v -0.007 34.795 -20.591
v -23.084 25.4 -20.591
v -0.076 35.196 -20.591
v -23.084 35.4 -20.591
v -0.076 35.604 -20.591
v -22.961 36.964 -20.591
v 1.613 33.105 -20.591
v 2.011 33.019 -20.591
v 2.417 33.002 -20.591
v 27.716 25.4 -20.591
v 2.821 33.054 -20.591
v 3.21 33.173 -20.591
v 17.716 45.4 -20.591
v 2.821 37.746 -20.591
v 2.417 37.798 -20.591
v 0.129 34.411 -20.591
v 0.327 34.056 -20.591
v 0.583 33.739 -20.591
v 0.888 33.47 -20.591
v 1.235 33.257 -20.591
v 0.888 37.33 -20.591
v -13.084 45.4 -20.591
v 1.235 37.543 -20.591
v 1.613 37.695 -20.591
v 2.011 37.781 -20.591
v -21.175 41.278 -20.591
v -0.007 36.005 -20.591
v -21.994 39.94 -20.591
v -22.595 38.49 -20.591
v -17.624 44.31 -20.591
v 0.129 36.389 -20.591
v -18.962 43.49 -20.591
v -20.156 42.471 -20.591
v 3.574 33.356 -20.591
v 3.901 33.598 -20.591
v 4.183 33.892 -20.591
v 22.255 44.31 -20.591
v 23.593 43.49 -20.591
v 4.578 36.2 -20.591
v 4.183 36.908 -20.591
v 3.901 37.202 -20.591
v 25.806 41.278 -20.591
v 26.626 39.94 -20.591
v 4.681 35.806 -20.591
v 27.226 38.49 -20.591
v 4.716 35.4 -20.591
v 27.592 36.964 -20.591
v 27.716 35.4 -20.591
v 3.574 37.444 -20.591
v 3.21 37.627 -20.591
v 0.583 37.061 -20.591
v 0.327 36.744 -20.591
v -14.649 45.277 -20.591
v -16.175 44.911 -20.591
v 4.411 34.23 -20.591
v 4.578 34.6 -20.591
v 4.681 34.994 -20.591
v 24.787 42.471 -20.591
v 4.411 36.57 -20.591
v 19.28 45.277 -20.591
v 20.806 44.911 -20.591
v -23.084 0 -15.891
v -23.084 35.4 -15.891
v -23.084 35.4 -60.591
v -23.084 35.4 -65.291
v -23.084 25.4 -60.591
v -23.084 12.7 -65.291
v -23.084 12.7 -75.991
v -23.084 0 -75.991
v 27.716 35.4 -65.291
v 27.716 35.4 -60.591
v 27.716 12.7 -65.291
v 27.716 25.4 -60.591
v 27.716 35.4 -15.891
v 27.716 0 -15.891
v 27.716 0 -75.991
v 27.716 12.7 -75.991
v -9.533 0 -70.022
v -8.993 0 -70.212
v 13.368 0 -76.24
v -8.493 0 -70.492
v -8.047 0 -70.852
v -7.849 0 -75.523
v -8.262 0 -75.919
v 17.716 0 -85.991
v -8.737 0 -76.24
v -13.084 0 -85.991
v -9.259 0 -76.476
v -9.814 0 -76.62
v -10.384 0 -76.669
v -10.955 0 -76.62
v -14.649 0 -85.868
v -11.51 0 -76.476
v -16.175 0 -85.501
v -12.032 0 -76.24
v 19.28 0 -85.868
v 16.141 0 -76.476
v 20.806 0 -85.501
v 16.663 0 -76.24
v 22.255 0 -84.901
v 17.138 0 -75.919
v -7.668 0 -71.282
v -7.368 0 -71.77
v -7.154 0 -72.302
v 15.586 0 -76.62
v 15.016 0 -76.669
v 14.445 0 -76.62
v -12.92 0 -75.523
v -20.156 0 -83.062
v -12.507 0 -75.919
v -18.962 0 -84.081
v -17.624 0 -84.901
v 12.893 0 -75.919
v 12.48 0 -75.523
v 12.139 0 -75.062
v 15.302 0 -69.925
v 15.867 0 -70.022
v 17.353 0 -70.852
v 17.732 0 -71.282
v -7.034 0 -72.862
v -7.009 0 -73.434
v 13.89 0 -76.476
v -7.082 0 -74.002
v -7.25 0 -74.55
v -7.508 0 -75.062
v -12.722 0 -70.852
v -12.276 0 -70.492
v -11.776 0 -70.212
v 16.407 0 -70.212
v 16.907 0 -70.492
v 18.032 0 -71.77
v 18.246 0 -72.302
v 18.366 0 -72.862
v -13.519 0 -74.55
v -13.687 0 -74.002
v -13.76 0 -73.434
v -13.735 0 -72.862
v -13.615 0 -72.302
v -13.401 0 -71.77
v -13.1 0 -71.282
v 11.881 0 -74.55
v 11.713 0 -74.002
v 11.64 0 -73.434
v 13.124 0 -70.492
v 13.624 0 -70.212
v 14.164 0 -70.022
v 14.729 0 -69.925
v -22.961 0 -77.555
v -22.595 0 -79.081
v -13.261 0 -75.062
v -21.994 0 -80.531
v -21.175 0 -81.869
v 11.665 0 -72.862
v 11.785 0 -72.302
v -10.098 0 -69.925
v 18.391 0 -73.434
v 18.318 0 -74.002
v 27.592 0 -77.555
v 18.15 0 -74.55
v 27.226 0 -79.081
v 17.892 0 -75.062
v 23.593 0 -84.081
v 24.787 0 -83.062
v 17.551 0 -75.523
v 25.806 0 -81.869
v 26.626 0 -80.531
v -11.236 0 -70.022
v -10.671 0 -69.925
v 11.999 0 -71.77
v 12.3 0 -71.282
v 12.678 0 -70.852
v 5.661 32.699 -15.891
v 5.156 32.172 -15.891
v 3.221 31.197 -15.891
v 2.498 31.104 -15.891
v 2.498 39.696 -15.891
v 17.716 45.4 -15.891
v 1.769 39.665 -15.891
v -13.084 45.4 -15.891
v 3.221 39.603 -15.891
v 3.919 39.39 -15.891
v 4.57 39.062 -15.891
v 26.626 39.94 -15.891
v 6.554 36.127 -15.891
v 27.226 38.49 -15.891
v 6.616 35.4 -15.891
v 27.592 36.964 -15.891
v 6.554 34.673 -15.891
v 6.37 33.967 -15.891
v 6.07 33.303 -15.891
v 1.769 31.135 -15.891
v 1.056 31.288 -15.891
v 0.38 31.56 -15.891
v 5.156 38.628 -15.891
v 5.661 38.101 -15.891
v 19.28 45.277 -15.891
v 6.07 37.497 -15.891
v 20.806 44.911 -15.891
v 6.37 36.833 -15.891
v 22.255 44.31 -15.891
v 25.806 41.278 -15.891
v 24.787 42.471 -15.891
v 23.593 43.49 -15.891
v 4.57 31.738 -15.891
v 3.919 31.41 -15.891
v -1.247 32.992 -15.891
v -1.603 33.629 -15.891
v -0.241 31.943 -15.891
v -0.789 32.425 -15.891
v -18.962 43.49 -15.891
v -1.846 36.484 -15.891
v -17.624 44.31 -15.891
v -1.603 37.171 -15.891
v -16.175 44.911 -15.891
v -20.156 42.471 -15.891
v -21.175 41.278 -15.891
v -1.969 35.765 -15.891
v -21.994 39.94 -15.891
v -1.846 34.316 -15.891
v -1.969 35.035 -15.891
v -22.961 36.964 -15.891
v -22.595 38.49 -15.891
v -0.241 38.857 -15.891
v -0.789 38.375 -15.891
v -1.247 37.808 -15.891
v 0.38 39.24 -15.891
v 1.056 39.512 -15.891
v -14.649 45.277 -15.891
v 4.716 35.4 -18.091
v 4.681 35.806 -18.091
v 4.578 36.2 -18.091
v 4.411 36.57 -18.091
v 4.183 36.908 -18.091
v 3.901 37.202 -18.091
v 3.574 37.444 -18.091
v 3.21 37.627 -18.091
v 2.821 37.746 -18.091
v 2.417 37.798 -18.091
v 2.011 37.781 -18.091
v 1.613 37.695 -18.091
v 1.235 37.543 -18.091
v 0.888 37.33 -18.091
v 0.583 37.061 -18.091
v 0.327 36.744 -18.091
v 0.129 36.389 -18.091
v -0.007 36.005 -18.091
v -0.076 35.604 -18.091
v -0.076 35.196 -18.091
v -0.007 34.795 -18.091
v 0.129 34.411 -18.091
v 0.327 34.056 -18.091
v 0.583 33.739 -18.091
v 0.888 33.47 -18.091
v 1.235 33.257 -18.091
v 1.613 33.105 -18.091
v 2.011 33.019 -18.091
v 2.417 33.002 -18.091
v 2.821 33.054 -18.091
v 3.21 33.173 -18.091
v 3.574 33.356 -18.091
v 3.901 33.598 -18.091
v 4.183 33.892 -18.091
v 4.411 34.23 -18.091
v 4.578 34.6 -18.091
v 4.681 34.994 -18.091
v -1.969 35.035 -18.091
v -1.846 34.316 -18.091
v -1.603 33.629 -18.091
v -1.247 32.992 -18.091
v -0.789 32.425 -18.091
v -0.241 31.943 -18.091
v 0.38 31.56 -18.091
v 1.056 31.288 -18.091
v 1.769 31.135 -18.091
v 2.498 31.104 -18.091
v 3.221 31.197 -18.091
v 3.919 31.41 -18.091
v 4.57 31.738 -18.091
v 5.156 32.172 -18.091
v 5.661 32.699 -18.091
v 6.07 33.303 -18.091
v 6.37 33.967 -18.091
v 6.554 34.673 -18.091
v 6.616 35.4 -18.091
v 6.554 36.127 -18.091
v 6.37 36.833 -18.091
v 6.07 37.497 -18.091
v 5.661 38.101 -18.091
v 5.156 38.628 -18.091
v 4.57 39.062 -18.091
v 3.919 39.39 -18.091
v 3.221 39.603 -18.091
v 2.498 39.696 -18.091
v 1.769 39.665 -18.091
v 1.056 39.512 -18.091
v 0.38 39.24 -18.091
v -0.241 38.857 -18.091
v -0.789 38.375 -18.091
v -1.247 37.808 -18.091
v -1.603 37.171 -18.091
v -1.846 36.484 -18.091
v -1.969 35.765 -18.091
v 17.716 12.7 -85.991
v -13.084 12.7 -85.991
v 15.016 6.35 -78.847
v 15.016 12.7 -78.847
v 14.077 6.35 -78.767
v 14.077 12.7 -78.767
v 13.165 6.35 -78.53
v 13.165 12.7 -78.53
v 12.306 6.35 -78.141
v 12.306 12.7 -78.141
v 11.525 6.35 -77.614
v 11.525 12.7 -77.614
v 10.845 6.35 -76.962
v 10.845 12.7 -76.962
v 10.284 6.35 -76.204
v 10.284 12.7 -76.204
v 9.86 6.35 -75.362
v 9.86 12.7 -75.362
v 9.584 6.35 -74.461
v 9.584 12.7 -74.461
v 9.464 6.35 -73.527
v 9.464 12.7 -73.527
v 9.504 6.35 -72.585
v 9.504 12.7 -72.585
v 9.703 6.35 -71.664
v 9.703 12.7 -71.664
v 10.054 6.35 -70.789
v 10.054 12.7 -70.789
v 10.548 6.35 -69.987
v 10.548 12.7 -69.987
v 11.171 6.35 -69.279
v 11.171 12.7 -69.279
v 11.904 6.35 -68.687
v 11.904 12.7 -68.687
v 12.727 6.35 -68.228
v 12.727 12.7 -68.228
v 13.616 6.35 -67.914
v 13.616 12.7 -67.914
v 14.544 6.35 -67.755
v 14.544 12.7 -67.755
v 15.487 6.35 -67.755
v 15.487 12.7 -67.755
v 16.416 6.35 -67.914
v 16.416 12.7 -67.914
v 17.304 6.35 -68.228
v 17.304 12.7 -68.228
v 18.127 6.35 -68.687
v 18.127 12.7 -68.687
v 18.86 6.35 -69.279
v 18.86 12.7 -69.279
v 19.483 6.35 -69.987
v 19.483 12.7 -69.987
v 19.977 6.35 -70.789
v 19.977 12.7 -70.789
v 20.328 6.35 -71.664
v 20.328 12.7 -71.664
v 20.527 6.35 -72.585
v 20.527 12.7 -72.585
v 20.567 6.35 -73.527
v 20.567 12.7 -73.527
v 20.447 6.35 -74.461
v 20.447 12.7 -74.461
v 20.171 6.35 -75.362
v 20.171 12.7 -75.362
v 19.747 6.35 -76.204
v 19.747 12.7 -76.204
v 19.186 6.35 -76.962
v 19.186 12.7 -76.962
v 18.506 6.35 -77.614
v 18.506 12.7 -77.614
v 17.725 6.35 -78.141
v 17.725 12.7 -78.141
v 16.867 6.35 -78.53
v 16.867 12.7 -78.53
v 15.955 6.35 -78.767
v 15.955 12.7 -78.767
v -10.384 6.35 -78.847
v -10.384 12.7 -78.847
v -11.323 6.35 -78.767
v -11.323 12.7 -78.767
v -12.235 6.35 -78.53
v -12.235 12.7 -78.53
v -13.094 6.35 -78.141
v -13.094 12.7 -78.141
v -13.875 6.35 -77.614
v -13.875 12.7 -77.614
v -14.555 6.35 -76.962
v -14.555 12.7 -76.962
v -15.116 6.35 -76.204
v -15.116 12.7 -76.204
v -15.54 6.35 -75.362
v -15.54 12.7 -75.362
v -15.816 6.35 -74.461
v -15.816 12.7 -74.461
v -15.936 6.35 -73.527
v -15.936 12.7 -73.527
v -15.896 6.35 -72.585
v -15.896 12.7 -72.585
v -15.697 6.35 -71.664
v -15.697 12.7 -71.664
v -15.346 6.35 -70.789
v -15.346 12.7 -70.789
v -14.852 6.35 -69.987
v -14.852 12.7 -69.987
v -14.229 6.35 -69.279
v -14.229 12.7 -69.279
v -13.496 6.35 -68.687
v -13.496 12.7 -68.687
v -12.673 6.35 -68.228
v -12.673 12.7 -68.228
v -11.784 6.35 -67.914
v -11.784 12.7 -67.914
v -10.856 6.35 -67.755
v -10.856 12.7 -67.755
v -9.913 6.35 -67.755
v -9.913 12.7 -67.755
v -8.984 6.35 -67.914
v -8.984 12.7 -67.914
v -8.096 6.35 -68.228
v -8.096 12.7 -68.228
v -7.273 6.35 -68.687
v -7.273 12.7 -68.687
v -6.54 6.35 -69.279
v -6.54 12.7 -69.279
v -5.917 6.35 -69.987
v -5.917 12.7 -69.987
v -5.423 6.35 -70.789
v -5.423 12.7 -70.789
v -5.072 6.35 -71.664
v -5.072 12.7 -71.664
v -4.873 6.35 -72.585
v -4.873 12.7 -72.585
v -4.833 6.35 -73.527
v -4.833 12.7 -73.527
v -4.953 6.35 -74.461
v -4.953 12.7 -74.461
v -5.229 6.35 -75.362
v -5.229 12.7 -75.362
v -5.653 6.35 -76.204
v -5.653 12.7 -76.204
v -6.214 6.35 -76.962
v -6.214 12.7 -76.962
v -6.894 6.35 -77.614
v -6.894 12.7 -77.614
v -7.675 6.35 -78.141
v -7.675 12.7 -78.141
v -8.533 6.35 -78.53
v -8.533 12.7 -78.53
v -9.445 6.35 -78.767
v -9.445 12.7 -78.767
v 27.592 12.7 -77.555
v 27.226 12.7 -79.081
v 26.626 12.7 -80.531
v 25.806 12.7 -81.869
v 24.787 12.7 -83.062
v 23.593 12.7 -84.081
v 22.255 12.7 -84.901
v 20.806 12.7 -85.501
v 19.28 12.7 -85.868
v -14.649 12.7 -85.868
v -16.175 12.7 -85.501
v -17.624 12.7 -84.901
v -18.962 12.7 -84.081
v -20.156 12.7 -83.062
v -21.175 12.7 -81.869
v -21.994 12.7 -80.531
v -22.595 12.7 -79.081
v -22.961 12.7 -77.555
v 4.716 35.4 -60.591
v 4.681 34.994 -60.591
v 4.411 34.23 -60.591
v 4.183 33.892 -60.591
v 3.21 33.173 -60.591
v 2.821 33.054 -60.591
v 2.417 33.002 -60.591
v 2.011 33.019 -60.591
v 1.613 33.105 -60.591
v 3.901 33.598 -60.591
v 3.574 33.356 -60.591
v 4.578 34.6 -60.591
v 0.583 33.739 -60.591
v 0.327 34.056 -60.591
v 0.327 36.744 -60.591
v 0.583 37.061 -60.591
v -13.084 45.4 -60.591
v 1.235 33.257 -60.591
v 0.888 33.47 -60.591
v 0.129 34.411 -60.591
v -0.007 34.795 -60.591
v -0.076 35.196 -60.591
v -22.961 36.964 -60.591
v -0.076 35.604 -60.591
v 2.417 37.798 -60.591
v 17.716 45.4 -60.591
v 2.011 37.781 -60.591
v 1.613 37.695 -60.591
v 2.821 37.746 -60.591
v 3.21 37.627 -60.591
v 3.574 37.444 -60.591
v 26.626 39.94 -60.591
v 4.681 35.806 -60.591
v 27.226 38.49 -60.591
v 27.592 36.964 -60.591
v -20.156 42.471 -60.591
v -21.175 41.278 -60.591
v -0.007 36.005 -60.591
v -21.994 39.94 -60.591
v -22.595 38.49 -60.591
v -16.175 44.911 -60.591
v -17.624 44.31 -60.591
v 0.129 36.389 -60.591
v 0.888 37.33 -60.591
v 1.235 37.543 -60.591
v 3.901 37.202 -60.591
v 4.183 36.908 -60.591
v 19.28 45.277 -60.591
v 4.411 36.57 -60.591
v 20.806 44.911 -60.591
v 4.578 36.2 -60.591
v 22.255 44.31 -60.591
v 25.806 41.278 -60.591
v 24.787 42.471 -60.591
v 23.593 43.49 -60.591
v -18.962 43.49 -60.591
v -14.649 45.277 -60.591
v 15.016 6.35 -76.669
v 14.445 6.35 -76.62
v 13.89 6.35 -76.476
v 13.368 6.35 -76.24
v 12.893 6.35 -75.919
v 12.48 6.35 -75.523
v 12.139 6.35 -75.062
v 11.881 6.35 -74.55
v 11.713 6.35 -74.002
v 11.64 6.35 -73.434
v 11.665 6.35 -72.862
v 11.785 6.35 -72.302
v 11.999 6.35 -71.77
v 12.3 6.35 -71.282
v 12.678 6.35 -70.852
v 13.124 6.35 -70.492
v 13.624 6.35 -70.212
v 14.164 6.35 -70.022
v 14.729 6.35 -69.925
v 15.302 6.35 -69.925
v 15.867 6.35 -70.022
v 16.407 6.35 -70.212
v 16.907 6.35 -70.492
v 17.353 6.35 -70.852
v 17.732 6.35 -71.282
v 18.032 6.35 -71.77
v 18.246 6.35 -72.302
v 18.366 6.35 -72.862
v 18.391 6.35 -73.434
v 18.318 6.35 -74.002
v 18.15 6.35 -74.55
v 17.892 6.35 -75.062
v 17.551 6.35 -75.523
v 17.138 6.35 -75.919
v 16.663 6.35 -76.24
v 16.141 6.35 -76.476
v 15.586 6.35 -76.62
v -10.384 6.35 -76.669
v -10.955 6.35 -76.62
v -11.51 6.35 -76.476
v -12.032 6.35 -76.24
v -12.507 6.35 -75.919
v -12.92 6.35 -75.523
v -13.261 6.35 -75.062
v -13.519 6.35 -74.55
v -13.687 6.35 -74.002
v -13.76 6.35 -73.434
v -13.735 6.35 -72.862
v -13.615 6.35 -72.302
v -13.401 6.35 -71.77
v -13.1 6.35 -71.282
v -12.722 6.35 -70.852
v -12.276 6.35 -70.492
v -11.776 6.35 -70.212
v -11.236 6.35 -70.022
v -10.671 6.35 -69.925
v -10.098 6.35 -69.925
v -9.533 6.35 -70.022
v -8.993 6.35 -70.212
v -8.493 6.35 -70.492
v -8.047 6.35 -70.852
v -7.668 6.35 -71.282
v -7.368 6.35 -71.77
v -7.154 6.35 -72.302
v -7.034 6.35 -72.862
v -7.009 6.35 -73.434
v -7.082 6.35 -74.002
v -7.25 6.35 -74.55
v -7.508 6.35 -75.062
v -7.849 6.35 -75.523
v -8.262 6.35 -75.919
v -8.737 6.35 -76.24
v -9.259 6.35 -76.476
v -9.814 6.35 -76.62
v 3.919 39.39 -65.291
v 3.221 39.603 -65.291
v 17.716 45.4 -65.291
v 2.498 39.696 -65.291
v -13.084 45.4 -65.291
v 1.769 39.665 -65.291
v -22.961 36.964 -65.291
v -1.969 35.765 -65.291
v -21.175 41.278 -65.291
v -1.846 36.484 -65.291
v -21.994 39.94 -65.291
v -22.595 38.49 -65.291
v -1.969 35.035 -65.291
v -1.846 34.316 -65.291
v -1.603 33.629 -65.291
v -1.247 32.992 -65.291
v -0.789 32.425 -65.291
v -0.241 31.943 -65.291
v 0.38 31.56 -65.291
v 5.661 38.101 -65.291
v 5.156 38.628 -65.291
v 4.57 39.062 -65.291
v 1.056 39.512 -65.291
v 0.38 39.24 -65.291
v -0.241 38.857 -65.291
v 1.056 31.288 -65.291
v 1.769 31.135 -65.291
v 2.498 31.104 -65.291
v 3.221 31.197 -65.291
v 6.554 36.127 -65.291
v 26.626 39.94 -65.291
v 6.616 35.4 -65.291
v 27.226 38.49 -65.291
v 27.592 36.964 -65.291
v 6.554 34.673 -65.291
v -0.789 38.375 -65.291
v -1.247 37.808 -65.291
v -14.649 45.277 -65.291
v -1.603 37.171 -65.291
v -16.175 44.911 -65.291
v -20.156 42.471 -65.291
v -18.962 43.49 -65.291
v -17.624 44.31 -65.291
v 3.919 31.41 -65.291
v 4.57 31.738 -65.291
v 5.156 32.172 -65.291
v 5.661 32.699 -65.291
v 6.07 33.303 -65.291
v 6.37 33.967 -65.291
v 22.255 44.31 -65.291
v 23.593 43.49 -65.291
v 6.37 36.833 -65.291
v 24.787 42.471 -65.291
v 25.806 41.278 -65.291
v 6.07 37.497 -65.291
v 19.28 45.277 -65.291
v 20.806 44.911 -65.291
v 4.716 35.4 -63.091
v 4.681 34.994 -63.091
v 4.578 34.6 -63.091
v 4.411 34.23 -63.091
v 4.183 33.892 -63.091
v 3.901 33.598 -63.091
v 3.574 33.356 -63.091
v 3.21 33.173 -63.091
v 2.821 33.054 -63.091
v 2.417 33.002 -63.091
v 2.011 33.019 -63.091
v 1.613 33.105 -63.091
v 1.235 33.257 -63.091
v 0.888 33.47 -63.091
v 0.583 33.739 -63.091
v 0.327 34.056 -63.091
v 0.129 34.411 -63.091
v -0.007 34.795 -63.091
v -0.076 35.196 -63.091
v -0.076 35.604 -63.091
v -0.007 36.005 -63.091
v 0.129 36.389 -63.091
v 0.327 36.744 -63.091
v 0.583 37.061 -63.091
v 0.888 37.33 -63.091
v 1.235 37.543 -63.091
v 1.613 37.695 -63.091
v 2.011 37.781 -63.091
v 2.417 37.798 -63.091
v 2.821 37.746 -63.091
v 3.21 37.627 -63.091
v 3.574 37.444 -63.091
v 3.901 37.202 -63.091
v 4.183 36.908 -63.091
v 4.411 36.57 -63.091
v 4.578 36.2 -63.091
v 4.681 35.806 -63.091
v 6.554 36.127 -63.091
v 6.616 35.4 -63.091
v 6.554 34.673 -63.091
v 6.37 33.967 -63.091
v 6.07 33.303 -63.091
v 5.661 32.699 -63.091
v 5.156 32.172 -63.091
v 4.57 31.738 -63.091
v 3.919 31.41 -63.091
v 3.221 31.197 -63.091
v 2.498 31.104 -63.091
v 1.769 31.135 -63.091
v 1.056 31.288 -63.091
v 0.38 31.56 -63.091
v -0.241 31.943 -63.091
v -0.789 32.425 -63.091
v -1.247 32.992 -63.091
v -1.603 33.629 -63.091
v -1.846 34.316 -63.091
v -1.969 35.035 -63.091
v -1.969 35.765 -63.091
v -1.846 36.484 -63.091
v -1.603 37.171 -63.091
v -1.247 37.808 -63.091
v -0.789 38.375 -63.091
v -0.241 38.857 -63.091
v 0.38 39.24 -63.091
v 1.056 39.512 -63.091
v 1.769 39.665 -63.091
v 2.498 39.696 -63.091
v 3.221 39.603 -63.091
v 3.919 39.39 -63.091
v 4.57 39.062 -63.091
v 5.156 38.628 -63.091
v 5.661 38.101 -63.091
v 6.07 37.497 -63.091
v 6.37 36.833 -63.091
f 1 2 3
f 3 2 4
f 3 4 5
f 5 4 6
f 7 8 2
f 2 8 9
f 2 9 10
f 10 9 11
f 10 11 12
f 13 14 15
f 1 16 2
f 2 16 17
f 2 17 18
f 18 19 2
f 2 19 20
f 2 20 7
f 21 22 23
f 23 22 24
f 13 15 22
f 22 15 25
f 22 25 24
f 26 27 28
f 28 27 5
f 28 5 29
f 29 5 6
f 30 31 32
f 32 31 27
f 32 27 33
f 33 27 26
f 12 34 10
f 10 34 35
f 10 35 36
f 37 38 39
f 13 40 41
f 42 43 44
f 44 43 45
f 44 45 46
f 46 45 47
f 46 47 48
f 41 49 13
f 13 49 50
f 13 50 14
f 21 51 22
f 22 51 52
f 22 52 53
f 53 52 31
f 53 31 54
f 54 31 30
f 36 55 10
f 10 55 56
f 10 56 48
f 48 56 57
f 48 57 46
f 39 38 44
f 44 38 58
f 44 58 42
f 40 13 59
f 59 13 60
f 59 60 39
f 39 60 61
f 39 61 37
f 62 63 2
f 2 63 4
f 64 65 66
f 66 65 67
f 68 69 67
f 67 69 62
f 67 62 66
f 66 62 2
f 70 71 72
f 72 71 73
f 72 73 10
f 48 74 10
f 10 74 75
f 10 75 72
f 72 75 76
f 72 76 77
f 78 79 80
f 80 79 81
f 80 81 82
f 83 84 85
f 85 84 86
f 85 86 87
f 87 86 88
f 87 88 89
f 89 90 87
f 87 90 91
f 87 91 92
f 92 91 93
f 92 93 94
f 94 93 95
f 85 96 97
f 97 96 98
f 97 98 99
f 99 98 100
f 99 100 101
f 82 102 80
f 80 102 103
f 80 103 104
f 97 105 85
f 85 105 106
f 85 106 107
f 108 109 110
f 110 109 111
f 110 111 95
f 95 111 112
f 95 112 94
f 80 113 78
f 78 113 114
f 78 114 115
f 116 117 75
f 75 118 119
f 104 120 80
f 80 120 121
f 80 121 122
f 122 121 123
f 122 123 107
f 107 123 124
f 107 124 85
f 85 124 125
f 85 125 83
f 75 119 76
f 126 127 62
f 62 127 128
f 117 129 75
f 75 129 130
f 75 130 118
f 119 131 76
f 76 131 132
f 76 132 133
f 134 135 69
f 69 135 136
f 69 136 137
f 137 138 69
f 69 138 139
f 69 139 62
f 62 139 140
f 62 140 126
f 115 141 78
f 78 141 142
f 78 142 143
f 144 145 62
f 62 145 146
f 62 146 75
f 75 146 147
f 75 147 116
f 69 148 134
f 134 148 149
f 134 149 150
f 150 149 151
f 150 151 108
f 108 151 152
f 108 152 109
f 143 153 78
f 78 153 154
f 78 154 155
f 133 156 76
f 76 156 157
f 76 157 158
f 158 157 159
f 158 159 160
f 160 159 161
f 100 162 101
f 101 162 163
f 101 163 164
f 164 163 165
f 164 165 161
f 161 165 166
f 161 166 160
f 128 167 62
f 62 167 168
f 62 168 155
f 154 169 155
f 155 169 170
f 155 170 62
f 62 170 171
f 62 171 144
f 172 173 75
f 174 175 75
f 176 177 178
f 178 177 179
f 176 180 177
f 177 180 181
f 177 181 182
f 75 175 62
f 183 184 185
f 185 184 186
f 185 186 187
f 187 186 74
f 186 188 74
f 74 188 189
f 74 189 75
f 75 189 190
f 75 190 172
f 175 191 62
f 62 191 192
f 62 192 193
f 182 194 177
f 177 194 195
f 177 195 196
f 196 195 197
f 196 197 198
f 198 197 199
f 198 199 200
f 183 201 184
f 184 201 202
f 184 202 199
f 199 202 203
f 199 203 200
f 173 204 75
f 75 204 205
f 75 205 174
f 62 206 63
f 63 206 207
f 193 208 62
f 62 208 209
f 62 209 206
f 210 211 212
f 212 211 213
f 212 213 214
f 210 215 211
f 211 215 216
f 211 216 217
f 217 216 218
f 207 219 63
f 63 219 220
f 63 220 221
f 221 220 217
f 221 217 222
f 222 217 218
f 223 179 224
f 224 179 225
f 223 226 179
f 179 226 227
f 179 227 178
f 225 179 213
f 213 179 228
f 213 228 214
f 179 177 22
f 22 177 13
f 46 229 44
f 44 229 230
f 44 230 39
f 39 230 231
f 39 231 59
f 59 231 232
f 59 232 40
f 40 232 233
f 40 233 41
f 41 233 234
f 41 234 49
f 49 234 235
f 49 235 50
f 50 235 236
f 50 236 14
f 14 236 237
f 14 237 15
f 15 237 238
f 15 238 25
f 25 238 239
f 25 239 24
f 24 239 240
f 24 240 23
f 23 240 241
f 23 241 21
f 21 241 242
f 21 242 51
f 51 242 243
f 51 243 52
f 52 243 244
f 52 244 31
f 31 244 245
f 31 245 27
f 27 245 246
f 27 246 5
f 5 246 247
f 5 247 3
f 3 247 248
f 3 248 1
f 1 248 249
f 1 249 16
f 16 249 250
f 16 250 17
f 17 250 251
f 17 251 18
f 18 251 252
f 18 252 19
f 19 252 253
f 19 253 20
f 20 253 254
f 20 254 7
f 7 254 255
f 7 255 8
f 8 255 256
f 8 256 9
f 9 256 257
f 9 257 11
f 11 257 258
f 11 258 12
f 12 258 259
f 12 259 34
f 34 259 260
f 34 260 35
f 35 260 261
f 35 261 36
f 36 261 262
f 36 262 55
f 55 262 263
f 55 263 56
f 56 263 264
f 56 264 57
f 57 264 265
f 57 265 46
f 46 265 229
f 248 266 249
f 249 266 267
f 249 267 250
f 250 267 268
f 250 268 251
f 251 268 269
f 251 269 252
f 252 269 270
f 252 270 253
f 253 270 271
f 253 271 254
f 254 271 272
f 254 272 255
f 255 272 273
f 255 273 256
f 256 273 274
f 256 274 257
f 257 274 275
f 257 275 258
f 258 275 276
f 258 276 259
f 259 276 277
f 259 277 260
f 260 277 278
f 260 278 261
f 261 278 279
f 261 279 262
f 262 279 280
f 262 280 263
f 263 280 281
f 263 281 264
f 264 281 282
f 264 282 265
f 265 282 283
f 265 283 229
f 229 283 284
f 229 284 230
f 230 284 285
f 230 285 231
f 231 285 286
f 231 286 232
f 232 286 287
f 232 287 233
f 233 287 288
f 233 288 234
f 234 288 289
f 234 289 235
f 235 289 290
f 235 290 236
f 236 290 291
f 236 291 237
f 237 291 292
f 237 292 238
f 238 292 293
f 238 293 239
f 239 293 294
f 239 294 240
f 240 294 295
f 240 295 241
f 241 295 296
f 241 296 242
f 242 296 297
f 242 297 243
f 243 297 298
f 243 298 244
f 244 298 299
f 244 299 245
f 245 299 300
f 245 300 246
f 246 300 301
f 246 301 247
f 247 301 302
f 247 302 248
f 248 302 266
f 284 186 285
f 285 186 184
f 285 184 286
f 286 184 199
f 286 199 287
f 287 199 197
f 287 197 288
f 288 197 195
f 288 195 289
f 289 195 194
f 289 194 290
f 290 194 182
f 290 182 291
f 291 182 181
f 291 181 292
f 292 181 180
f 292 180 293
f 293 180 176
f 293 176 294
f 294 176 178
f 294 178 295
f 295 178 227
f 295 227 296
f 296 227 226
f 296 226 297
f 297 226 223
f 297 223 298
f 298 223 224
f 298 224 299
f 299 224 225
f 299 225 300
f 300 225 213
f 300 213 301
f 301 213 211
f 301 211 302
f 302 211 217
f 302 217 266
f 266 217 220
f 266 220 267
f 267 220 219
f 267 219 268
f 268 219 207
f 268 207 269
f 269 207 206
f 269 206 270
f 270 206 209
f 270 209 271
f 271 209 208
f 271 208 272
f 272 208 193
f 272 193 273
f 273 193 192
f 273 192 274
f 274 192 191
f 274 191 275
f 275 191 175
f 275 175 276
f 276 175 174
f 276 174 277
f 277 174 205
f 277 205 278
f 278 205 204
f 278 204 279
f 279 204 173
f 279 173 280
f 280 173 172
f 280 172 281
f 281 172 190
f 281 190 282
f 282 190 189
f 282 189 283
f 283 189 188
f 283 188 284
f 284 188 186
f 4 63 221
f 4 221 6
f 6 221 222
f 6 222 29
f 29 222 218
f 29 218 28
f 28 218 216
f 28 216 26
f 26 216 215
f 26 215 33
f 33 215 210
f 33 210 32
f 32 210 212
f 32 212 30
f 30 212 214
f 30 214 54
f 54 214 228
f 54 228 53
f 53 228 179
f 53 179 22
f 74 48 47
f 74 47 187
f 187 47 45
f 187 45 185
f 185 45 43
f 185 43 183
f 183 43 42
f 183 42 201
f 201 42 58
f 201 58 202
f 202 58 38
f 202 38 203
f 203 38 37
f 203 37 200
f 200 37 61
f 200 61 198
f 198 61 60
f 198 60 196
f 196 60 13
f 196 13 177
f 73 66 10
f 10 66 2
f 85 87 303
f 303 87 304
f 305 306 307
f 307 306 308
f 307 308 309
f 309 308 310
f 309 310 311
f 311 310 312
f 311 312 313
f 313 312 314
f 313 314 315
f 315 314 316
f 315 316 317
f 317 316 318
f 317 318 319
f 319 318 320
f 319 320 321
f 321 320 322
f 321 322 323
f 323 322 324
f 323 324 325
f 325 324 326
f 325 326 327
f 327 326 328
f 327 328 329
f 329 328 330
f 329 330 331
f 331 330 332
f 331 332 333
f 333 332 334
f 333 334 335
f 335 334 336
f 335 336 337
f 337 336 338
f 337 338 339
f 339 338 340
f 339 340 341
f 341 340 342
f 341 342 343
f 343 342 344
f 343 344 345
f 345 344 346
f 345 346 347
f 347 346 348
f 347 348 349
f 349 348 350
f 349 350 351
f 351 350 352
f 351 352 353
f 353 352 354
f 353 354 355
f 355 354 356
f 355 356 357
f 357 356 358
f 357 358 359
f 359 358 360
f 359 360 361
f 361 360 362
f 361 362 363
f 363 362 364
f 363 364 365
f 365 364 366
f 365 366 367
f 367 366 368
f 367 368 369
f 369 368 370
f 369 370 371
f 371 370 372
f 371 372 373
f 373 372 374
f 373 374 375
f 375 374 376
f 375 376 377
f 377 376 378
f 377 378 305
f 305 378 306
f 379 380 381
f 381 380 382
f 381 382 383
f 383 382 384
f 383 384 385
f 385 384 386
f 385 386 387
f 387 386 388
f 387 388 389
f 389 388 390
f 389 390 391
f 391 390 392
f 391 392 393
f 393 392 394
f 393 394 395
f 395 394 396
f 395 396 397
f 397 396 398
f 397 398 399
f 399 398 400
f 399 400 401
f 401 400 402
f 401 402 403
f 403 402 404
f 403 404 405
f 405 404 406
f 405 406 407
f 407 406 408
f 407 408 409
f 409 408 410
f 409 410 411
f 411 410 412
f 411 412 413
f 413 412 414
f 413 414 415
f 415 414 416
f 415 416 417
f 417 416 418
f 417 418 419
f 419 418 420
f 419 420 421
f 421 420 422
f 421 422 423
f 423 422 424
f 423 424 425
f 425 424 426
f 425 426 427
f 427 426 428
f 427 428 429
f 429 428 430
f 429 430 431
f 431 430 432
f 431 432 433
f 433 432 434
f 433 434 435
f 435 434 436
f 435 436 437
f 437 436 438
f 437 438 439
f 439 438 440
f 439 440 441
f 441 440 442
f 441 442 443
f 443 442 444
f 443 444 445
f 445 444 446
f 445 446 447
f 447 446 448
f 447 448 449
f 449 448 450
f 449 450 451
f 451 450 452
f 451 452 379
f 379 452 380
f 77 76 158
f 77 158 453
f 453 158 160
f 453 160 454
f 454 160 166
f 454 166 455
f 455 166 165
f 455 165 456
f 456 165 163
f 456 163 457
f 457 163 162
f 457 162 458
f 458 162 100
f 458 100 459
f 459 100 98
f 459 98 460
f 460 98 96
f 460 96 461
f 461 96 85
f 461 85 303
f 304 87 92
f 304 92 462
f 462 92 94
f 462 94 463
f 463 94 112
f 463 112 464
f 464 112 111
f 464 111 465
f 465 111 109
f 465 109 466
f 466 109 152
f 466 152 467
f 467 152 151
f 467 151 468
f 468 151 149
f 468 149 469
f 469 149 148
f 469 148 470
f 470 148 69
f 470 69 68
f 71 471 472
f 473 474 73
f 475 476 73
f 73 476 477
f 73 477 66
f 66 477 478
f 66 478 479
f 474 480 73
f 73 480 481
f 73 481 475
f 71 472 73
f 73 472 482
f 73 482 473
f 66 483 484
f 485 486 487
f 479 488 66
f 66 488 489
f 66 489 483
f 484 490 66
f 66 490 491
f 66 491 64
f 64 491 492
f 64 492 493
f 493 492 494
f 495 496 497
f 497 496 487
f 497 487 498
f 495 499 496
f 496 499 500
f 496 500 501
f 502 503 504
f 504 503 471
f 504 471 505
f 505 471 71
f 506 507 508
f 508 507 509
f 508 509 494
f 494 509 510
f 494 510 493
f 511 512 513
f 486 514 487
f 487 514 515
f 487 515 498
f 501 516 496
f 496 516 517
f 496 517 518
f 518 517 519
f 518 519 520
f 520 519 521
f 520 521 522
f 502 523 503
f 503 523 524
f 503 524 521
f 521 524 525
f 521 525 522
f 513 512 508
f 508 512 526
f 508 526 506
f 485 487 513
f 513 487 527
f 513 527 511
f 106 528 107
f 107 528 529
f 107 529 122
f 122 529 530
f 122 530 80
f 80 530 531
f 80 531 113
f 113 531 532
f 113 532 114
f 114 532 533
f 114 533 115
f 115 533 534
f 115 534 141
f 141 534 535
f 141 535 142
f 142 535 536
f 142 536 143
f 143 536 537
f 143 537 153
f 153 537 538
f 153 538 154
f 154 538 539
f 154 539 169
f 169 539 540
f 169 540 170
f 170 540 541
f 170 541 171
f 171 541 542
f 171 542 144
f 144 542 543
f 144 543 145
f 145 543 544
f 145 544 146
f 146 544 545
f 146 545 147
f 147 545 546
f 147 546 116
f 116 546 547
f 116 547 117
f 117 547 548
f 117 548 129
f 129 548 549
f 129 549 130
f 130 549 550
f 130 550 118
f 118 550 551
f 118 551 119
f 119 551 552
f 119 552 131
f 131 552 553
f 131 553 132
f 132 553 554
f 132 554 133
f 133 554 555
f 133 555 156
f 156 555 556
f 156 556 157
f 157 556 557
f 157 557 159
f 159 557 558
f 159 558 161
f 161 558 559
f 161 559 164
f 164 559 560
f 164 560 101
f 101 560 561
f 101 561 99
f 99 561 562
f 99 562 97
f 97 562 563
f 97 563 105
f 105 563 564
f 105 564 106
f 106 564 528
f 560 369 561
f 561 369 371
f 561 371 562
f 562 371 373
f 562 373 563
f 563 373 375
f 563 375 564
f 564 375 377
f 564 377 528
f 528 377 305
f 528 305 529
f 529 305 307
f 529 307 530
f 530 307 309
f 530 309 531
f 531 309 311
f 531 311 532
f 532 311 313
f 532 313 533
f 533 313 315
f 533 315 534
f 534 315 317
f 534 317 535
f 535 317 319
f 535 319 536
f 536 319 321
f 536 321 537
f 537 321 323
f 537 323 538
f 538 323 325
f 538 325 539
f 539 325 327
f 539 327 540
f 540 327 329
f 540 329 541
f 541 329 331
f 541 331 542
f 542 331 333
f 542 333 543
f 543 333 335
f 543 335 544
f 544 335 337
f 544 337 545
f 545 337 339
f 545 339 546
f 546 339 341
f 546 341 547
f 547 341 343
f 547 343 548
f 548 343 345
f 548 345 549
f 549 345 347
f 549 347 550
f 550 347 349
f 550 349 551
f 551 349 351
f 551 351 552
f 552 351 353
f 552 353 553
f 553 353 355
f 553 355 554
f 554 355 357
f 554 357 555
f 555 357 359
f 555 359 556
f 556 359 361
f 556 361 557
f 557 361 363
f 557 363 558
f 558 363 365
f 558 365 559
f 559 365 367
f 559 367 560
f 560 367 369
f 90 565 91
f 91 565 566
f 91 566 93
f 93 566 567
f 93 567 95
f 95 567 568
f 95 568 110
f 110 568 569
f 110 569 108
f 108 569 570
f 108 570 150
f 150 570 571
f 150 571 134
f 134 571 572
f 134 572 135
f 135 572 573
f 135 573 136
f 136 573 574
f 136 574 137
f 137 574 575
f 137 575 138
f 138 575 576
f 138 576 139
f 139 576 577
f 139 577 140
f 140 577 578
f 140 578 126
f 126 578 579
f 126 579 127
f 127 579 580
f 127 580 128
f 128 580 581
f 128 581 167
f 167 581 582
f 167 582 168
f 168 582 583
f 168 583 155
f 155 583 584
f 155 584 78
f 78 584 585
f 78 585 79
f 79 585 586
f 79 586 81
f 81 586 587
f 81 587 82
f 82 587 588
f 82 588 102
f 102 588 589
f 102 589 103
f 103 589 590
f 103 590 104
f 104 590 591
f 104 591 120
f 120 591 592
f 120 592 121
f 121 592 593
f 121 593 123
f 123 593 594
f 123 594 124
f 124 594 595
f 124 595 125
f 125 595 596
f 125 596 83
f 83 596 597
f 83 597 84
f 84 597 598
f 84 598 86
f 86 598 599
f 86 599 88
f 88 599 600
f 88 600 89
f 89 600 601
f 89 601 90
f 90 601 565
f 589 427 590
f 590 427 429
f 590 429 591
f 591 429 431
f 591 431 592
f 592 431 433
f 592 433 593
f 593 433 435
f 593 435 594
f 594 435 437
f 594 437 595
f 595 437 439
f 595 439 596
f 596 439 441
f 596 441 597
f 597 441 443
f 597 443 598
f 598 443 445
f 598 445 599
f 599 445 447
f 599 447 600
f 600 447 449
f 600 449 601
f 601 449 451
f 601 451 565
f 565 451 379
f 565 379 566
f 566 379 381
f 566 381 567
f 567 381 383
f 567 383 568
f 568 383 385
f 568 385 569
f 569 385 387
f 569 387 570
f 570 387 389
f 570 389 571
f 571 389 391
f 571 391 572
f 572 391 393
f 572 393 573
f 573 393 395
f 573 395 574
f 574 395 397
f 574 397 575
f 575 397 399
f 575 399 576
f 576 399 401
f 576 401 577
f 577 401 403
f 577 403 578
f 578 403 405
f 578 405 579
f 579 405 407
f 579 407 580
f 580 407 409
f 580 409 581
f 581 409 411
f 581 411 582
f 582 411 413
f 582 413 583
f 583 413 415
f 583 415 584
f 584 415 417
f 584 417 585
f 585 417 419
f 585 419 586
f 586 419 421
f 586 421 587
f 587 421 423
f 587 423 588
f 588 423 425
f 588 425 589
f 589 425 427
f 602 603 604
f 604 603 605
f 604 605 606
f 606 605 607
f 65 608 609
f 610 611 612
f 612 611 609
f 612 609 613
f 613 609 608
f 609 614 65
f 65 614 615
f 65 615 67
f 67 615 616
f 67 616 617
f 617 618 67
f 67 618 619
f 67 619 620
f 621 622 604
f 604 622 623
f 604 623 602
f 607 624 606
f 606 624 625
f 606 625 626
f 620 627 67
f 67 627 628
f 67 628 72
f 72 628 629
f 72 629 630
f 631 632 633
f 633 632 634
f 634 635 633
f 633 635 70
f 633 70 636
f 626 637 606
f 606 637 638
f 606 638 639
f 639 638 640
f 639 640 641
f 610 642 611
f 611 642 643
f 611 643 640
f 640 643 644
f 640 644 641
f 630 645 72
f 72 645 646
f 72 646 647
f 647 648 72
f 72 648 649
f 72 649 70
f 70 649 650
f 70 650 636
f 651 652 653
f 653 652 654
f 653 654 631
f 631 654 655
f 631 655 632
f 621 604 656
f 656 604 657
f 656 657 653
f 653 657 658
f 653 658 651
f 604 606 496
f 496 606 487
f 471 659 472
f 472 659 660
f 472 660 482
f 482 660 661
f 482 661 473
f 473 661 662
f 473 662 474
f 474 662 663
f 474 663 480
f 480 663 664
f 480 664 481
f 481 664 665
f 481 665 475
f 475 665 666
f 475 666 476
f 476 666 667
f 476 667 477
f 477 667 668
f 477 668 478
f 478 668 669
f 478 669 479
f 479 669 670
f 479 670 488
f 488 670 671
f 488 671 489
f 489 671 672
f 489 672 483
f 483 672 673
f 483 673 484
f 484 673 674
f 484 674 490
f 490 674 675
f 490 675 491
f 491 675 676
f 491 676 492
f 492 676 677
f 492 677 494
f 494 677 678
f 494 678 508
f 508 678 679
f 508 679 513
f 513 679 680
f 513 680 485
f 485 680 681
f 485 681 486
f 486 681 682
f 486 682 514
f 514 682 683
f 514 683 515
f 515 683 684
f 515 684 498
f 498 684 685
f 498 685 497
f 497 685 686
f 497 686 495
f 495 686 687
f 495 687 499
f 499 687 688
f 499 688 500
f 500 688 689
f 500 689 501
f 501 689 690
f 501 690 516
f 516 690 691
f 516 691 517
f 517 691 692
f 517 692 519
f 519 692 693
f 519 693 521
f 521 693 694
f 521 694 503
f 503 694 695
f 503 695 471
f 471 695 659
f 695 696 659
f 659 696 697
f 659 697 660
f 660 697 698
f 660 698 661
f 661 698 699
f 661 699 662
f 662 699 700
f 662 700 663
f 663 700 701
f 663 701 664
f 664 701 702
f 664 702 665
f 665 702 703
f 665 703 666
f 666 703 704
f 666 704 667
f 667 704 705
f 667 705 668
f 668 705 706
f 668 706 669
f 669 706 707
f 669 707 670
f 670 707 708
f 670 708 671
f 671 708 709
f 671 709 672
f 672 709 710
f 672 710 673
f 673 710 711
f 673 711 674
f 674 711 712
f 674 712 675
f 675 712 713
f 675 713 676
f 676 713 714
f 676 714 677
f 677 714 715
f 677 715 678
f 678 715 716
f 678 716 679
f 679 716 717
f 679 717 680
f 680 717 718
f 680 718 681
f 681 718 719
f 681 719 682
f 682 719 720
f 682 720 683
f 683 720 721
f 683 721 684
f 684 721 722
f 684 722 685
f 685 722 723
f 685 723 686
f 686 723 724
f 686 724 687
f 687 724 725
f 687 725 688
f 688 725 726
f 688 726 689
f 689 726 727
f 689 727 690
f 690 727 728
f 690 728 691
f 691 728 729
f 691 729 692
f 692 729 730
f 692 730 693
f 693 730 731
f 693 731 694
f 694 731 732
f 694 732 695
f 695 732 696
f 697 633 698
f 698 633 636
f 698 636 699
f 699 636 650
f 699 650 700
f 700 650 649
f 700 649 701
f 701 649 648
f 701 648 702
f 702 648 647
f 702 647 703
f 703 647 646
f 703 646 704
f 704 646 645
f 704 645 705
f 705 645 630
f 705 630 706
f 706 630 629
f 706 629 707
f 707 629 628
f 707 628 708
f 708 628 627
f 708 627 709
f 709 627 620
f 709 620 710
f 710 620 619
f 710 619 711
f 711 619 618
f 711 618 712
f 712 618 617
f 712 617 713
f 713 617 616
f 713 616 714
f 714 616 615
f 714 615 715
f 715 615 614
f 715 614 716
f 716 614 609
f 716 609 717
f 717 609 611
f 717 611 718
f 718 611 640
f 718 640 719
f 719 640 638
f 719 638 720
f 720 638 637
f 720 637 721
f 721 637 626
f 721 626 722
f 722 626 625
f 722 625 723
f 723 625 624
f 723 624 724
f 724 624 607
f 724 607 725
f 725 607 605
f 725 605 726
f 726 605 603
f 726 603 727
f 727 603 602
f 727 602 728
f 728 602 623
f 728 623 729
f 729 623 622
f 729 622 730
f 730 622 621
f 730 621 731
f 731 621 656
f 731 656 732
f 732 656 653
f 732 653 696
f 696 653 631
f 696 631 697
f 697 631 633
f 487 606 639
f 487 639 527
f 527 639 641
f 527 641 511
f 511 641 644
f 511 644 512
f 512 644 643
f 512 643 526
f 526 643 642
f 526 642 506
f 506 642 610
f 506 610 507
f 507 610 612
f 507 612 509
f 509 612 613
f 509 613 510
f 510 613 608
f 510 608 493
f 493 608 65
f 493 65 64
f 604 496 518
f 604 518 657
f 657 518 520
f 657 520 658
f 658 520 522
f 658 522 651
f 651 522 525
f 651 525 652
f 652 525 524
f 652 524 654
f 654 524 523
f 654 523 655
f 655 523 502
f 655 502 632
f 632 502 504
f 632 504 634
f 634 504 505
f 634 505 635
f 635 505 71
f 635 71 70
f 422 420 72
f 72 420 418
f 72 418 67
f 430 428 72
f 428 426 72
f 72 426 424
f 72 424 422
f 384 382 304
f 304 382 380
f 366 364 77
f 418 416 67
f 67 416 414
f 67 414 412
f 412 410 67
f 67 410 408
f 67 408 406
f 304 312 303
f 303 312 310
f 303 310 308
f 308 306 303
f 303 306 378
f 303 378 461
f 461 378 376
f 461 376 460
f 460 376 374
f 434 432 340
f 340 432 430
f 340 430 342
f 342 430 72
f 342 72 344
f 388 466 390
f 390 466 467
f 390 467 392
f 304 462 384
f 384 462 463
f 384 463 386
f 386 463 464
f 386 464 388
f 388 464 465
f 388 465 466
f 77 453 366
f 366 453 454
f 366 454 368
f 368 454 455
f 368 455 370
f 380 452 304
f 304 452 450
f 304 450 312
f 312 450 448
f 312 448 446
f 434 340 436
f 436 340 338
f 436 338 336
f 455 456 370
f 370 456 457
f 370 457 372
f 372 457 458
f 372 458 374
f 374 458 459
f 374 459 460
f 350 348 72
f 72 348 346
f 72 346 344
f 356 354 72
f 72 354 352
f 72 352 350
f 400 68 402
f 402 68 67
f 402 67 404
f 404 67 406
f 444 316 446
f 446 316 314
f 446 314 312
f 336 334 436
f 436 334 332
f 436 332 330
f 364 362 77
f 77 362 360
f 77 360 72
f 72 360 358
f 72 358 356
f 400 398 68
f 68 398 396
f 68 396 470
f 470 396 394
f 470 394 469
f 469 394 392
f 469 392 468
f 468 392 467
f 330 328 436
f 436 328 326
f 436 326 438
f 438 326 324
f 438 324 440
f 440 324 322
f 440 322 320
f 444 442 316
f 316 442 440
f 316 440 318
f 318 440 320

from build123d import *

# Parameters (mm, degrees)
SKETCH1_W                                        = 50.8
SKETCH1_H                                        = 25.4
BOSS_EXTRUDE1_DEPTH                              = 25.4
CBORE_FOR_1_4_SOCKET_HEAD_CAP_SCREW1_D           = 6.7564
CBORE_FOR_1_4_SOCKET_HEAD_CAP_SCREW1_CBORE_D     = 11.1125
CBORE_FOR_1_4_SOCKET_HEAD_CAP_SCREW1_CBORE_DEPTH = 19.05
SKETCH6_W                                        = 50.8
SKETCH6_H                                        = 4.7
BOSS_EXTRUDE2_DEPTH                              = 20
CBORE_FOR_M4_SBHCS1_D                            = 4.8
CBORE_FOR_M4_SBHCS1_CBORE_D                      = 8.6
CBORE_FOR_M4_SBHCS1_CBORE_DEPTH                  = 2.2
FILLET1_R                                        = 10
SKETCH15_W                                       = 50.8
SKETCH15_H                                       = 25.4
BOSS_EXTRUDE3_DEPTH                              = 20
SKETCH16_W                                       = 51.113320751
SKETCH16_H                                       = 27.993322013
CUT_EXTRUDE2_DEPTH                               = 12.7
SKETCH17_W                                       = 50.8
SKETCH17_H                                       = 12.7
CUT_EXTRUDE3_DEPTH                               = 20.7


with BuildPart() as part:
    # Sketch1 → Boss-Extrude1 (new body)
    with BuildSketch(Plane(origin=(0, 0, 0), x_dir=(1, 0, 0), z_dir=(0, 1, 0))):
        with Locations((2.315568022, 7.890743338)):
            Rectangle(SKETCH1_W, SKETCH1_H)
    extrude(amount=BOSS_EXTRUDE1_DEPTH)

    # CBORE for 1/4 Socket Head Cap Screw1 (through all)
    with Locations(Plane(origin=(0, 25.4, 0), x_dir=(1, 0, 0), z_dir=(0, 1, 0))):
        with Locations((-10.384431978, 7.890743338), (15.015568022, 7.890743338)):
            CounterBoreHole(CBORE_FOR_1_4_SOCKET_HEAD_CAP_SCREW1_D / 2, CBORE_FOR_1_4_SOCKET_HEAD_CAP_SCREW1_CBORE_D / 2, CBORE_FOR_1_4_SOCKET_HEAD_CAP_SCREW1_CBORE_DEPTH)

    # Sketch6 → Boss-Extrude2 (add)
    with BuildSketch(Plane(origin=(0, 25.4, 0), x_dir=(1, 0, 0), z_dir=(0, 1, 0))):
        with Locations((2.315568022, 18.240743338)):
            Rectangle(SKETCH6_W, SKETCH6_H)
    extrude(amount=BOSS_EXTRUDE2_DEPTH)

    # CBORE for M4 SBHCS1 (through all)
    with Locations(Plane.XY.offset(-15.890743338)):
        with Locations((2.315568022, 35.4)):
            CounterBoreHole(CBORE_FOR_M4_SBHCS1_D / 2, CBORE_FOR_M4_SBHCS1_CBORE_D / 2, CBORE_FOR_M4_SBHCS1_CBORE_DEPTH)

    # Fillet1
    fillet1_edges = [part.edges().sort_by_distance(p)[0] for p in [
        (27.715568022, 45.4, -18.240743338),
        (-23.084431978, 45.4, -18.240743338),
        (27.715568022, 12.7, 4.809256662),
        (-23.084431978, 12.7, 4.809256662),
    ]]
    fillet(fillet1_edges, radius=FILLET1_R)

    # Sketch15 → Boss-Extrude3 (add)
    with BuildSketch(Plane(origin=(0, 0, -20.590743338), x_dir=(-1, 0, 0), z_dir=(0, 0, -1))):
        with Locations((-2.315568022, 12.7)):
            Rectangle(SKETCH15_W, SKETCH15_H)
    extrude(amount=BOSS_EXTRUDE3_DEPTH)

    # Sketch16 → Cut-Extrude2 (cut)
    with BuildSketch(Plane(origin=(0, 25.4, 0), x_dir=(1, 0, 0), z_dir=(0, 1, 0))):
        with Locations((2.472228398, 1.894082332)):
            Rectangle(SKETCH16_W, SKETCH16_H)
    extrude(amount=-CUT_EXTRUDE2_DEPTH, mode=Mode.SUBTRACT)

    # Mirror1: part across plane


with BuildPart() as part_1:
    add(part.part)
    add(part.part.mirror(Plane(origin=(0, 0, -40.590743338), x_dir=(1, 0, 0), z_dir=(0, 0, -1))))

    # Sketch17 → Cut-Extrude3 (cut)
    with BuildSketch(Plane.XY.offset(4.809256662)):
        with Locations((2.315568022, 6.35)):
            Rectangle(SKETCH17_W, SKETCH17_H)
    extrude(amount=-CUT_EXTRUDE3_DEPTH, mode=Mode.SUBTRACT)


solid = part_1.part
